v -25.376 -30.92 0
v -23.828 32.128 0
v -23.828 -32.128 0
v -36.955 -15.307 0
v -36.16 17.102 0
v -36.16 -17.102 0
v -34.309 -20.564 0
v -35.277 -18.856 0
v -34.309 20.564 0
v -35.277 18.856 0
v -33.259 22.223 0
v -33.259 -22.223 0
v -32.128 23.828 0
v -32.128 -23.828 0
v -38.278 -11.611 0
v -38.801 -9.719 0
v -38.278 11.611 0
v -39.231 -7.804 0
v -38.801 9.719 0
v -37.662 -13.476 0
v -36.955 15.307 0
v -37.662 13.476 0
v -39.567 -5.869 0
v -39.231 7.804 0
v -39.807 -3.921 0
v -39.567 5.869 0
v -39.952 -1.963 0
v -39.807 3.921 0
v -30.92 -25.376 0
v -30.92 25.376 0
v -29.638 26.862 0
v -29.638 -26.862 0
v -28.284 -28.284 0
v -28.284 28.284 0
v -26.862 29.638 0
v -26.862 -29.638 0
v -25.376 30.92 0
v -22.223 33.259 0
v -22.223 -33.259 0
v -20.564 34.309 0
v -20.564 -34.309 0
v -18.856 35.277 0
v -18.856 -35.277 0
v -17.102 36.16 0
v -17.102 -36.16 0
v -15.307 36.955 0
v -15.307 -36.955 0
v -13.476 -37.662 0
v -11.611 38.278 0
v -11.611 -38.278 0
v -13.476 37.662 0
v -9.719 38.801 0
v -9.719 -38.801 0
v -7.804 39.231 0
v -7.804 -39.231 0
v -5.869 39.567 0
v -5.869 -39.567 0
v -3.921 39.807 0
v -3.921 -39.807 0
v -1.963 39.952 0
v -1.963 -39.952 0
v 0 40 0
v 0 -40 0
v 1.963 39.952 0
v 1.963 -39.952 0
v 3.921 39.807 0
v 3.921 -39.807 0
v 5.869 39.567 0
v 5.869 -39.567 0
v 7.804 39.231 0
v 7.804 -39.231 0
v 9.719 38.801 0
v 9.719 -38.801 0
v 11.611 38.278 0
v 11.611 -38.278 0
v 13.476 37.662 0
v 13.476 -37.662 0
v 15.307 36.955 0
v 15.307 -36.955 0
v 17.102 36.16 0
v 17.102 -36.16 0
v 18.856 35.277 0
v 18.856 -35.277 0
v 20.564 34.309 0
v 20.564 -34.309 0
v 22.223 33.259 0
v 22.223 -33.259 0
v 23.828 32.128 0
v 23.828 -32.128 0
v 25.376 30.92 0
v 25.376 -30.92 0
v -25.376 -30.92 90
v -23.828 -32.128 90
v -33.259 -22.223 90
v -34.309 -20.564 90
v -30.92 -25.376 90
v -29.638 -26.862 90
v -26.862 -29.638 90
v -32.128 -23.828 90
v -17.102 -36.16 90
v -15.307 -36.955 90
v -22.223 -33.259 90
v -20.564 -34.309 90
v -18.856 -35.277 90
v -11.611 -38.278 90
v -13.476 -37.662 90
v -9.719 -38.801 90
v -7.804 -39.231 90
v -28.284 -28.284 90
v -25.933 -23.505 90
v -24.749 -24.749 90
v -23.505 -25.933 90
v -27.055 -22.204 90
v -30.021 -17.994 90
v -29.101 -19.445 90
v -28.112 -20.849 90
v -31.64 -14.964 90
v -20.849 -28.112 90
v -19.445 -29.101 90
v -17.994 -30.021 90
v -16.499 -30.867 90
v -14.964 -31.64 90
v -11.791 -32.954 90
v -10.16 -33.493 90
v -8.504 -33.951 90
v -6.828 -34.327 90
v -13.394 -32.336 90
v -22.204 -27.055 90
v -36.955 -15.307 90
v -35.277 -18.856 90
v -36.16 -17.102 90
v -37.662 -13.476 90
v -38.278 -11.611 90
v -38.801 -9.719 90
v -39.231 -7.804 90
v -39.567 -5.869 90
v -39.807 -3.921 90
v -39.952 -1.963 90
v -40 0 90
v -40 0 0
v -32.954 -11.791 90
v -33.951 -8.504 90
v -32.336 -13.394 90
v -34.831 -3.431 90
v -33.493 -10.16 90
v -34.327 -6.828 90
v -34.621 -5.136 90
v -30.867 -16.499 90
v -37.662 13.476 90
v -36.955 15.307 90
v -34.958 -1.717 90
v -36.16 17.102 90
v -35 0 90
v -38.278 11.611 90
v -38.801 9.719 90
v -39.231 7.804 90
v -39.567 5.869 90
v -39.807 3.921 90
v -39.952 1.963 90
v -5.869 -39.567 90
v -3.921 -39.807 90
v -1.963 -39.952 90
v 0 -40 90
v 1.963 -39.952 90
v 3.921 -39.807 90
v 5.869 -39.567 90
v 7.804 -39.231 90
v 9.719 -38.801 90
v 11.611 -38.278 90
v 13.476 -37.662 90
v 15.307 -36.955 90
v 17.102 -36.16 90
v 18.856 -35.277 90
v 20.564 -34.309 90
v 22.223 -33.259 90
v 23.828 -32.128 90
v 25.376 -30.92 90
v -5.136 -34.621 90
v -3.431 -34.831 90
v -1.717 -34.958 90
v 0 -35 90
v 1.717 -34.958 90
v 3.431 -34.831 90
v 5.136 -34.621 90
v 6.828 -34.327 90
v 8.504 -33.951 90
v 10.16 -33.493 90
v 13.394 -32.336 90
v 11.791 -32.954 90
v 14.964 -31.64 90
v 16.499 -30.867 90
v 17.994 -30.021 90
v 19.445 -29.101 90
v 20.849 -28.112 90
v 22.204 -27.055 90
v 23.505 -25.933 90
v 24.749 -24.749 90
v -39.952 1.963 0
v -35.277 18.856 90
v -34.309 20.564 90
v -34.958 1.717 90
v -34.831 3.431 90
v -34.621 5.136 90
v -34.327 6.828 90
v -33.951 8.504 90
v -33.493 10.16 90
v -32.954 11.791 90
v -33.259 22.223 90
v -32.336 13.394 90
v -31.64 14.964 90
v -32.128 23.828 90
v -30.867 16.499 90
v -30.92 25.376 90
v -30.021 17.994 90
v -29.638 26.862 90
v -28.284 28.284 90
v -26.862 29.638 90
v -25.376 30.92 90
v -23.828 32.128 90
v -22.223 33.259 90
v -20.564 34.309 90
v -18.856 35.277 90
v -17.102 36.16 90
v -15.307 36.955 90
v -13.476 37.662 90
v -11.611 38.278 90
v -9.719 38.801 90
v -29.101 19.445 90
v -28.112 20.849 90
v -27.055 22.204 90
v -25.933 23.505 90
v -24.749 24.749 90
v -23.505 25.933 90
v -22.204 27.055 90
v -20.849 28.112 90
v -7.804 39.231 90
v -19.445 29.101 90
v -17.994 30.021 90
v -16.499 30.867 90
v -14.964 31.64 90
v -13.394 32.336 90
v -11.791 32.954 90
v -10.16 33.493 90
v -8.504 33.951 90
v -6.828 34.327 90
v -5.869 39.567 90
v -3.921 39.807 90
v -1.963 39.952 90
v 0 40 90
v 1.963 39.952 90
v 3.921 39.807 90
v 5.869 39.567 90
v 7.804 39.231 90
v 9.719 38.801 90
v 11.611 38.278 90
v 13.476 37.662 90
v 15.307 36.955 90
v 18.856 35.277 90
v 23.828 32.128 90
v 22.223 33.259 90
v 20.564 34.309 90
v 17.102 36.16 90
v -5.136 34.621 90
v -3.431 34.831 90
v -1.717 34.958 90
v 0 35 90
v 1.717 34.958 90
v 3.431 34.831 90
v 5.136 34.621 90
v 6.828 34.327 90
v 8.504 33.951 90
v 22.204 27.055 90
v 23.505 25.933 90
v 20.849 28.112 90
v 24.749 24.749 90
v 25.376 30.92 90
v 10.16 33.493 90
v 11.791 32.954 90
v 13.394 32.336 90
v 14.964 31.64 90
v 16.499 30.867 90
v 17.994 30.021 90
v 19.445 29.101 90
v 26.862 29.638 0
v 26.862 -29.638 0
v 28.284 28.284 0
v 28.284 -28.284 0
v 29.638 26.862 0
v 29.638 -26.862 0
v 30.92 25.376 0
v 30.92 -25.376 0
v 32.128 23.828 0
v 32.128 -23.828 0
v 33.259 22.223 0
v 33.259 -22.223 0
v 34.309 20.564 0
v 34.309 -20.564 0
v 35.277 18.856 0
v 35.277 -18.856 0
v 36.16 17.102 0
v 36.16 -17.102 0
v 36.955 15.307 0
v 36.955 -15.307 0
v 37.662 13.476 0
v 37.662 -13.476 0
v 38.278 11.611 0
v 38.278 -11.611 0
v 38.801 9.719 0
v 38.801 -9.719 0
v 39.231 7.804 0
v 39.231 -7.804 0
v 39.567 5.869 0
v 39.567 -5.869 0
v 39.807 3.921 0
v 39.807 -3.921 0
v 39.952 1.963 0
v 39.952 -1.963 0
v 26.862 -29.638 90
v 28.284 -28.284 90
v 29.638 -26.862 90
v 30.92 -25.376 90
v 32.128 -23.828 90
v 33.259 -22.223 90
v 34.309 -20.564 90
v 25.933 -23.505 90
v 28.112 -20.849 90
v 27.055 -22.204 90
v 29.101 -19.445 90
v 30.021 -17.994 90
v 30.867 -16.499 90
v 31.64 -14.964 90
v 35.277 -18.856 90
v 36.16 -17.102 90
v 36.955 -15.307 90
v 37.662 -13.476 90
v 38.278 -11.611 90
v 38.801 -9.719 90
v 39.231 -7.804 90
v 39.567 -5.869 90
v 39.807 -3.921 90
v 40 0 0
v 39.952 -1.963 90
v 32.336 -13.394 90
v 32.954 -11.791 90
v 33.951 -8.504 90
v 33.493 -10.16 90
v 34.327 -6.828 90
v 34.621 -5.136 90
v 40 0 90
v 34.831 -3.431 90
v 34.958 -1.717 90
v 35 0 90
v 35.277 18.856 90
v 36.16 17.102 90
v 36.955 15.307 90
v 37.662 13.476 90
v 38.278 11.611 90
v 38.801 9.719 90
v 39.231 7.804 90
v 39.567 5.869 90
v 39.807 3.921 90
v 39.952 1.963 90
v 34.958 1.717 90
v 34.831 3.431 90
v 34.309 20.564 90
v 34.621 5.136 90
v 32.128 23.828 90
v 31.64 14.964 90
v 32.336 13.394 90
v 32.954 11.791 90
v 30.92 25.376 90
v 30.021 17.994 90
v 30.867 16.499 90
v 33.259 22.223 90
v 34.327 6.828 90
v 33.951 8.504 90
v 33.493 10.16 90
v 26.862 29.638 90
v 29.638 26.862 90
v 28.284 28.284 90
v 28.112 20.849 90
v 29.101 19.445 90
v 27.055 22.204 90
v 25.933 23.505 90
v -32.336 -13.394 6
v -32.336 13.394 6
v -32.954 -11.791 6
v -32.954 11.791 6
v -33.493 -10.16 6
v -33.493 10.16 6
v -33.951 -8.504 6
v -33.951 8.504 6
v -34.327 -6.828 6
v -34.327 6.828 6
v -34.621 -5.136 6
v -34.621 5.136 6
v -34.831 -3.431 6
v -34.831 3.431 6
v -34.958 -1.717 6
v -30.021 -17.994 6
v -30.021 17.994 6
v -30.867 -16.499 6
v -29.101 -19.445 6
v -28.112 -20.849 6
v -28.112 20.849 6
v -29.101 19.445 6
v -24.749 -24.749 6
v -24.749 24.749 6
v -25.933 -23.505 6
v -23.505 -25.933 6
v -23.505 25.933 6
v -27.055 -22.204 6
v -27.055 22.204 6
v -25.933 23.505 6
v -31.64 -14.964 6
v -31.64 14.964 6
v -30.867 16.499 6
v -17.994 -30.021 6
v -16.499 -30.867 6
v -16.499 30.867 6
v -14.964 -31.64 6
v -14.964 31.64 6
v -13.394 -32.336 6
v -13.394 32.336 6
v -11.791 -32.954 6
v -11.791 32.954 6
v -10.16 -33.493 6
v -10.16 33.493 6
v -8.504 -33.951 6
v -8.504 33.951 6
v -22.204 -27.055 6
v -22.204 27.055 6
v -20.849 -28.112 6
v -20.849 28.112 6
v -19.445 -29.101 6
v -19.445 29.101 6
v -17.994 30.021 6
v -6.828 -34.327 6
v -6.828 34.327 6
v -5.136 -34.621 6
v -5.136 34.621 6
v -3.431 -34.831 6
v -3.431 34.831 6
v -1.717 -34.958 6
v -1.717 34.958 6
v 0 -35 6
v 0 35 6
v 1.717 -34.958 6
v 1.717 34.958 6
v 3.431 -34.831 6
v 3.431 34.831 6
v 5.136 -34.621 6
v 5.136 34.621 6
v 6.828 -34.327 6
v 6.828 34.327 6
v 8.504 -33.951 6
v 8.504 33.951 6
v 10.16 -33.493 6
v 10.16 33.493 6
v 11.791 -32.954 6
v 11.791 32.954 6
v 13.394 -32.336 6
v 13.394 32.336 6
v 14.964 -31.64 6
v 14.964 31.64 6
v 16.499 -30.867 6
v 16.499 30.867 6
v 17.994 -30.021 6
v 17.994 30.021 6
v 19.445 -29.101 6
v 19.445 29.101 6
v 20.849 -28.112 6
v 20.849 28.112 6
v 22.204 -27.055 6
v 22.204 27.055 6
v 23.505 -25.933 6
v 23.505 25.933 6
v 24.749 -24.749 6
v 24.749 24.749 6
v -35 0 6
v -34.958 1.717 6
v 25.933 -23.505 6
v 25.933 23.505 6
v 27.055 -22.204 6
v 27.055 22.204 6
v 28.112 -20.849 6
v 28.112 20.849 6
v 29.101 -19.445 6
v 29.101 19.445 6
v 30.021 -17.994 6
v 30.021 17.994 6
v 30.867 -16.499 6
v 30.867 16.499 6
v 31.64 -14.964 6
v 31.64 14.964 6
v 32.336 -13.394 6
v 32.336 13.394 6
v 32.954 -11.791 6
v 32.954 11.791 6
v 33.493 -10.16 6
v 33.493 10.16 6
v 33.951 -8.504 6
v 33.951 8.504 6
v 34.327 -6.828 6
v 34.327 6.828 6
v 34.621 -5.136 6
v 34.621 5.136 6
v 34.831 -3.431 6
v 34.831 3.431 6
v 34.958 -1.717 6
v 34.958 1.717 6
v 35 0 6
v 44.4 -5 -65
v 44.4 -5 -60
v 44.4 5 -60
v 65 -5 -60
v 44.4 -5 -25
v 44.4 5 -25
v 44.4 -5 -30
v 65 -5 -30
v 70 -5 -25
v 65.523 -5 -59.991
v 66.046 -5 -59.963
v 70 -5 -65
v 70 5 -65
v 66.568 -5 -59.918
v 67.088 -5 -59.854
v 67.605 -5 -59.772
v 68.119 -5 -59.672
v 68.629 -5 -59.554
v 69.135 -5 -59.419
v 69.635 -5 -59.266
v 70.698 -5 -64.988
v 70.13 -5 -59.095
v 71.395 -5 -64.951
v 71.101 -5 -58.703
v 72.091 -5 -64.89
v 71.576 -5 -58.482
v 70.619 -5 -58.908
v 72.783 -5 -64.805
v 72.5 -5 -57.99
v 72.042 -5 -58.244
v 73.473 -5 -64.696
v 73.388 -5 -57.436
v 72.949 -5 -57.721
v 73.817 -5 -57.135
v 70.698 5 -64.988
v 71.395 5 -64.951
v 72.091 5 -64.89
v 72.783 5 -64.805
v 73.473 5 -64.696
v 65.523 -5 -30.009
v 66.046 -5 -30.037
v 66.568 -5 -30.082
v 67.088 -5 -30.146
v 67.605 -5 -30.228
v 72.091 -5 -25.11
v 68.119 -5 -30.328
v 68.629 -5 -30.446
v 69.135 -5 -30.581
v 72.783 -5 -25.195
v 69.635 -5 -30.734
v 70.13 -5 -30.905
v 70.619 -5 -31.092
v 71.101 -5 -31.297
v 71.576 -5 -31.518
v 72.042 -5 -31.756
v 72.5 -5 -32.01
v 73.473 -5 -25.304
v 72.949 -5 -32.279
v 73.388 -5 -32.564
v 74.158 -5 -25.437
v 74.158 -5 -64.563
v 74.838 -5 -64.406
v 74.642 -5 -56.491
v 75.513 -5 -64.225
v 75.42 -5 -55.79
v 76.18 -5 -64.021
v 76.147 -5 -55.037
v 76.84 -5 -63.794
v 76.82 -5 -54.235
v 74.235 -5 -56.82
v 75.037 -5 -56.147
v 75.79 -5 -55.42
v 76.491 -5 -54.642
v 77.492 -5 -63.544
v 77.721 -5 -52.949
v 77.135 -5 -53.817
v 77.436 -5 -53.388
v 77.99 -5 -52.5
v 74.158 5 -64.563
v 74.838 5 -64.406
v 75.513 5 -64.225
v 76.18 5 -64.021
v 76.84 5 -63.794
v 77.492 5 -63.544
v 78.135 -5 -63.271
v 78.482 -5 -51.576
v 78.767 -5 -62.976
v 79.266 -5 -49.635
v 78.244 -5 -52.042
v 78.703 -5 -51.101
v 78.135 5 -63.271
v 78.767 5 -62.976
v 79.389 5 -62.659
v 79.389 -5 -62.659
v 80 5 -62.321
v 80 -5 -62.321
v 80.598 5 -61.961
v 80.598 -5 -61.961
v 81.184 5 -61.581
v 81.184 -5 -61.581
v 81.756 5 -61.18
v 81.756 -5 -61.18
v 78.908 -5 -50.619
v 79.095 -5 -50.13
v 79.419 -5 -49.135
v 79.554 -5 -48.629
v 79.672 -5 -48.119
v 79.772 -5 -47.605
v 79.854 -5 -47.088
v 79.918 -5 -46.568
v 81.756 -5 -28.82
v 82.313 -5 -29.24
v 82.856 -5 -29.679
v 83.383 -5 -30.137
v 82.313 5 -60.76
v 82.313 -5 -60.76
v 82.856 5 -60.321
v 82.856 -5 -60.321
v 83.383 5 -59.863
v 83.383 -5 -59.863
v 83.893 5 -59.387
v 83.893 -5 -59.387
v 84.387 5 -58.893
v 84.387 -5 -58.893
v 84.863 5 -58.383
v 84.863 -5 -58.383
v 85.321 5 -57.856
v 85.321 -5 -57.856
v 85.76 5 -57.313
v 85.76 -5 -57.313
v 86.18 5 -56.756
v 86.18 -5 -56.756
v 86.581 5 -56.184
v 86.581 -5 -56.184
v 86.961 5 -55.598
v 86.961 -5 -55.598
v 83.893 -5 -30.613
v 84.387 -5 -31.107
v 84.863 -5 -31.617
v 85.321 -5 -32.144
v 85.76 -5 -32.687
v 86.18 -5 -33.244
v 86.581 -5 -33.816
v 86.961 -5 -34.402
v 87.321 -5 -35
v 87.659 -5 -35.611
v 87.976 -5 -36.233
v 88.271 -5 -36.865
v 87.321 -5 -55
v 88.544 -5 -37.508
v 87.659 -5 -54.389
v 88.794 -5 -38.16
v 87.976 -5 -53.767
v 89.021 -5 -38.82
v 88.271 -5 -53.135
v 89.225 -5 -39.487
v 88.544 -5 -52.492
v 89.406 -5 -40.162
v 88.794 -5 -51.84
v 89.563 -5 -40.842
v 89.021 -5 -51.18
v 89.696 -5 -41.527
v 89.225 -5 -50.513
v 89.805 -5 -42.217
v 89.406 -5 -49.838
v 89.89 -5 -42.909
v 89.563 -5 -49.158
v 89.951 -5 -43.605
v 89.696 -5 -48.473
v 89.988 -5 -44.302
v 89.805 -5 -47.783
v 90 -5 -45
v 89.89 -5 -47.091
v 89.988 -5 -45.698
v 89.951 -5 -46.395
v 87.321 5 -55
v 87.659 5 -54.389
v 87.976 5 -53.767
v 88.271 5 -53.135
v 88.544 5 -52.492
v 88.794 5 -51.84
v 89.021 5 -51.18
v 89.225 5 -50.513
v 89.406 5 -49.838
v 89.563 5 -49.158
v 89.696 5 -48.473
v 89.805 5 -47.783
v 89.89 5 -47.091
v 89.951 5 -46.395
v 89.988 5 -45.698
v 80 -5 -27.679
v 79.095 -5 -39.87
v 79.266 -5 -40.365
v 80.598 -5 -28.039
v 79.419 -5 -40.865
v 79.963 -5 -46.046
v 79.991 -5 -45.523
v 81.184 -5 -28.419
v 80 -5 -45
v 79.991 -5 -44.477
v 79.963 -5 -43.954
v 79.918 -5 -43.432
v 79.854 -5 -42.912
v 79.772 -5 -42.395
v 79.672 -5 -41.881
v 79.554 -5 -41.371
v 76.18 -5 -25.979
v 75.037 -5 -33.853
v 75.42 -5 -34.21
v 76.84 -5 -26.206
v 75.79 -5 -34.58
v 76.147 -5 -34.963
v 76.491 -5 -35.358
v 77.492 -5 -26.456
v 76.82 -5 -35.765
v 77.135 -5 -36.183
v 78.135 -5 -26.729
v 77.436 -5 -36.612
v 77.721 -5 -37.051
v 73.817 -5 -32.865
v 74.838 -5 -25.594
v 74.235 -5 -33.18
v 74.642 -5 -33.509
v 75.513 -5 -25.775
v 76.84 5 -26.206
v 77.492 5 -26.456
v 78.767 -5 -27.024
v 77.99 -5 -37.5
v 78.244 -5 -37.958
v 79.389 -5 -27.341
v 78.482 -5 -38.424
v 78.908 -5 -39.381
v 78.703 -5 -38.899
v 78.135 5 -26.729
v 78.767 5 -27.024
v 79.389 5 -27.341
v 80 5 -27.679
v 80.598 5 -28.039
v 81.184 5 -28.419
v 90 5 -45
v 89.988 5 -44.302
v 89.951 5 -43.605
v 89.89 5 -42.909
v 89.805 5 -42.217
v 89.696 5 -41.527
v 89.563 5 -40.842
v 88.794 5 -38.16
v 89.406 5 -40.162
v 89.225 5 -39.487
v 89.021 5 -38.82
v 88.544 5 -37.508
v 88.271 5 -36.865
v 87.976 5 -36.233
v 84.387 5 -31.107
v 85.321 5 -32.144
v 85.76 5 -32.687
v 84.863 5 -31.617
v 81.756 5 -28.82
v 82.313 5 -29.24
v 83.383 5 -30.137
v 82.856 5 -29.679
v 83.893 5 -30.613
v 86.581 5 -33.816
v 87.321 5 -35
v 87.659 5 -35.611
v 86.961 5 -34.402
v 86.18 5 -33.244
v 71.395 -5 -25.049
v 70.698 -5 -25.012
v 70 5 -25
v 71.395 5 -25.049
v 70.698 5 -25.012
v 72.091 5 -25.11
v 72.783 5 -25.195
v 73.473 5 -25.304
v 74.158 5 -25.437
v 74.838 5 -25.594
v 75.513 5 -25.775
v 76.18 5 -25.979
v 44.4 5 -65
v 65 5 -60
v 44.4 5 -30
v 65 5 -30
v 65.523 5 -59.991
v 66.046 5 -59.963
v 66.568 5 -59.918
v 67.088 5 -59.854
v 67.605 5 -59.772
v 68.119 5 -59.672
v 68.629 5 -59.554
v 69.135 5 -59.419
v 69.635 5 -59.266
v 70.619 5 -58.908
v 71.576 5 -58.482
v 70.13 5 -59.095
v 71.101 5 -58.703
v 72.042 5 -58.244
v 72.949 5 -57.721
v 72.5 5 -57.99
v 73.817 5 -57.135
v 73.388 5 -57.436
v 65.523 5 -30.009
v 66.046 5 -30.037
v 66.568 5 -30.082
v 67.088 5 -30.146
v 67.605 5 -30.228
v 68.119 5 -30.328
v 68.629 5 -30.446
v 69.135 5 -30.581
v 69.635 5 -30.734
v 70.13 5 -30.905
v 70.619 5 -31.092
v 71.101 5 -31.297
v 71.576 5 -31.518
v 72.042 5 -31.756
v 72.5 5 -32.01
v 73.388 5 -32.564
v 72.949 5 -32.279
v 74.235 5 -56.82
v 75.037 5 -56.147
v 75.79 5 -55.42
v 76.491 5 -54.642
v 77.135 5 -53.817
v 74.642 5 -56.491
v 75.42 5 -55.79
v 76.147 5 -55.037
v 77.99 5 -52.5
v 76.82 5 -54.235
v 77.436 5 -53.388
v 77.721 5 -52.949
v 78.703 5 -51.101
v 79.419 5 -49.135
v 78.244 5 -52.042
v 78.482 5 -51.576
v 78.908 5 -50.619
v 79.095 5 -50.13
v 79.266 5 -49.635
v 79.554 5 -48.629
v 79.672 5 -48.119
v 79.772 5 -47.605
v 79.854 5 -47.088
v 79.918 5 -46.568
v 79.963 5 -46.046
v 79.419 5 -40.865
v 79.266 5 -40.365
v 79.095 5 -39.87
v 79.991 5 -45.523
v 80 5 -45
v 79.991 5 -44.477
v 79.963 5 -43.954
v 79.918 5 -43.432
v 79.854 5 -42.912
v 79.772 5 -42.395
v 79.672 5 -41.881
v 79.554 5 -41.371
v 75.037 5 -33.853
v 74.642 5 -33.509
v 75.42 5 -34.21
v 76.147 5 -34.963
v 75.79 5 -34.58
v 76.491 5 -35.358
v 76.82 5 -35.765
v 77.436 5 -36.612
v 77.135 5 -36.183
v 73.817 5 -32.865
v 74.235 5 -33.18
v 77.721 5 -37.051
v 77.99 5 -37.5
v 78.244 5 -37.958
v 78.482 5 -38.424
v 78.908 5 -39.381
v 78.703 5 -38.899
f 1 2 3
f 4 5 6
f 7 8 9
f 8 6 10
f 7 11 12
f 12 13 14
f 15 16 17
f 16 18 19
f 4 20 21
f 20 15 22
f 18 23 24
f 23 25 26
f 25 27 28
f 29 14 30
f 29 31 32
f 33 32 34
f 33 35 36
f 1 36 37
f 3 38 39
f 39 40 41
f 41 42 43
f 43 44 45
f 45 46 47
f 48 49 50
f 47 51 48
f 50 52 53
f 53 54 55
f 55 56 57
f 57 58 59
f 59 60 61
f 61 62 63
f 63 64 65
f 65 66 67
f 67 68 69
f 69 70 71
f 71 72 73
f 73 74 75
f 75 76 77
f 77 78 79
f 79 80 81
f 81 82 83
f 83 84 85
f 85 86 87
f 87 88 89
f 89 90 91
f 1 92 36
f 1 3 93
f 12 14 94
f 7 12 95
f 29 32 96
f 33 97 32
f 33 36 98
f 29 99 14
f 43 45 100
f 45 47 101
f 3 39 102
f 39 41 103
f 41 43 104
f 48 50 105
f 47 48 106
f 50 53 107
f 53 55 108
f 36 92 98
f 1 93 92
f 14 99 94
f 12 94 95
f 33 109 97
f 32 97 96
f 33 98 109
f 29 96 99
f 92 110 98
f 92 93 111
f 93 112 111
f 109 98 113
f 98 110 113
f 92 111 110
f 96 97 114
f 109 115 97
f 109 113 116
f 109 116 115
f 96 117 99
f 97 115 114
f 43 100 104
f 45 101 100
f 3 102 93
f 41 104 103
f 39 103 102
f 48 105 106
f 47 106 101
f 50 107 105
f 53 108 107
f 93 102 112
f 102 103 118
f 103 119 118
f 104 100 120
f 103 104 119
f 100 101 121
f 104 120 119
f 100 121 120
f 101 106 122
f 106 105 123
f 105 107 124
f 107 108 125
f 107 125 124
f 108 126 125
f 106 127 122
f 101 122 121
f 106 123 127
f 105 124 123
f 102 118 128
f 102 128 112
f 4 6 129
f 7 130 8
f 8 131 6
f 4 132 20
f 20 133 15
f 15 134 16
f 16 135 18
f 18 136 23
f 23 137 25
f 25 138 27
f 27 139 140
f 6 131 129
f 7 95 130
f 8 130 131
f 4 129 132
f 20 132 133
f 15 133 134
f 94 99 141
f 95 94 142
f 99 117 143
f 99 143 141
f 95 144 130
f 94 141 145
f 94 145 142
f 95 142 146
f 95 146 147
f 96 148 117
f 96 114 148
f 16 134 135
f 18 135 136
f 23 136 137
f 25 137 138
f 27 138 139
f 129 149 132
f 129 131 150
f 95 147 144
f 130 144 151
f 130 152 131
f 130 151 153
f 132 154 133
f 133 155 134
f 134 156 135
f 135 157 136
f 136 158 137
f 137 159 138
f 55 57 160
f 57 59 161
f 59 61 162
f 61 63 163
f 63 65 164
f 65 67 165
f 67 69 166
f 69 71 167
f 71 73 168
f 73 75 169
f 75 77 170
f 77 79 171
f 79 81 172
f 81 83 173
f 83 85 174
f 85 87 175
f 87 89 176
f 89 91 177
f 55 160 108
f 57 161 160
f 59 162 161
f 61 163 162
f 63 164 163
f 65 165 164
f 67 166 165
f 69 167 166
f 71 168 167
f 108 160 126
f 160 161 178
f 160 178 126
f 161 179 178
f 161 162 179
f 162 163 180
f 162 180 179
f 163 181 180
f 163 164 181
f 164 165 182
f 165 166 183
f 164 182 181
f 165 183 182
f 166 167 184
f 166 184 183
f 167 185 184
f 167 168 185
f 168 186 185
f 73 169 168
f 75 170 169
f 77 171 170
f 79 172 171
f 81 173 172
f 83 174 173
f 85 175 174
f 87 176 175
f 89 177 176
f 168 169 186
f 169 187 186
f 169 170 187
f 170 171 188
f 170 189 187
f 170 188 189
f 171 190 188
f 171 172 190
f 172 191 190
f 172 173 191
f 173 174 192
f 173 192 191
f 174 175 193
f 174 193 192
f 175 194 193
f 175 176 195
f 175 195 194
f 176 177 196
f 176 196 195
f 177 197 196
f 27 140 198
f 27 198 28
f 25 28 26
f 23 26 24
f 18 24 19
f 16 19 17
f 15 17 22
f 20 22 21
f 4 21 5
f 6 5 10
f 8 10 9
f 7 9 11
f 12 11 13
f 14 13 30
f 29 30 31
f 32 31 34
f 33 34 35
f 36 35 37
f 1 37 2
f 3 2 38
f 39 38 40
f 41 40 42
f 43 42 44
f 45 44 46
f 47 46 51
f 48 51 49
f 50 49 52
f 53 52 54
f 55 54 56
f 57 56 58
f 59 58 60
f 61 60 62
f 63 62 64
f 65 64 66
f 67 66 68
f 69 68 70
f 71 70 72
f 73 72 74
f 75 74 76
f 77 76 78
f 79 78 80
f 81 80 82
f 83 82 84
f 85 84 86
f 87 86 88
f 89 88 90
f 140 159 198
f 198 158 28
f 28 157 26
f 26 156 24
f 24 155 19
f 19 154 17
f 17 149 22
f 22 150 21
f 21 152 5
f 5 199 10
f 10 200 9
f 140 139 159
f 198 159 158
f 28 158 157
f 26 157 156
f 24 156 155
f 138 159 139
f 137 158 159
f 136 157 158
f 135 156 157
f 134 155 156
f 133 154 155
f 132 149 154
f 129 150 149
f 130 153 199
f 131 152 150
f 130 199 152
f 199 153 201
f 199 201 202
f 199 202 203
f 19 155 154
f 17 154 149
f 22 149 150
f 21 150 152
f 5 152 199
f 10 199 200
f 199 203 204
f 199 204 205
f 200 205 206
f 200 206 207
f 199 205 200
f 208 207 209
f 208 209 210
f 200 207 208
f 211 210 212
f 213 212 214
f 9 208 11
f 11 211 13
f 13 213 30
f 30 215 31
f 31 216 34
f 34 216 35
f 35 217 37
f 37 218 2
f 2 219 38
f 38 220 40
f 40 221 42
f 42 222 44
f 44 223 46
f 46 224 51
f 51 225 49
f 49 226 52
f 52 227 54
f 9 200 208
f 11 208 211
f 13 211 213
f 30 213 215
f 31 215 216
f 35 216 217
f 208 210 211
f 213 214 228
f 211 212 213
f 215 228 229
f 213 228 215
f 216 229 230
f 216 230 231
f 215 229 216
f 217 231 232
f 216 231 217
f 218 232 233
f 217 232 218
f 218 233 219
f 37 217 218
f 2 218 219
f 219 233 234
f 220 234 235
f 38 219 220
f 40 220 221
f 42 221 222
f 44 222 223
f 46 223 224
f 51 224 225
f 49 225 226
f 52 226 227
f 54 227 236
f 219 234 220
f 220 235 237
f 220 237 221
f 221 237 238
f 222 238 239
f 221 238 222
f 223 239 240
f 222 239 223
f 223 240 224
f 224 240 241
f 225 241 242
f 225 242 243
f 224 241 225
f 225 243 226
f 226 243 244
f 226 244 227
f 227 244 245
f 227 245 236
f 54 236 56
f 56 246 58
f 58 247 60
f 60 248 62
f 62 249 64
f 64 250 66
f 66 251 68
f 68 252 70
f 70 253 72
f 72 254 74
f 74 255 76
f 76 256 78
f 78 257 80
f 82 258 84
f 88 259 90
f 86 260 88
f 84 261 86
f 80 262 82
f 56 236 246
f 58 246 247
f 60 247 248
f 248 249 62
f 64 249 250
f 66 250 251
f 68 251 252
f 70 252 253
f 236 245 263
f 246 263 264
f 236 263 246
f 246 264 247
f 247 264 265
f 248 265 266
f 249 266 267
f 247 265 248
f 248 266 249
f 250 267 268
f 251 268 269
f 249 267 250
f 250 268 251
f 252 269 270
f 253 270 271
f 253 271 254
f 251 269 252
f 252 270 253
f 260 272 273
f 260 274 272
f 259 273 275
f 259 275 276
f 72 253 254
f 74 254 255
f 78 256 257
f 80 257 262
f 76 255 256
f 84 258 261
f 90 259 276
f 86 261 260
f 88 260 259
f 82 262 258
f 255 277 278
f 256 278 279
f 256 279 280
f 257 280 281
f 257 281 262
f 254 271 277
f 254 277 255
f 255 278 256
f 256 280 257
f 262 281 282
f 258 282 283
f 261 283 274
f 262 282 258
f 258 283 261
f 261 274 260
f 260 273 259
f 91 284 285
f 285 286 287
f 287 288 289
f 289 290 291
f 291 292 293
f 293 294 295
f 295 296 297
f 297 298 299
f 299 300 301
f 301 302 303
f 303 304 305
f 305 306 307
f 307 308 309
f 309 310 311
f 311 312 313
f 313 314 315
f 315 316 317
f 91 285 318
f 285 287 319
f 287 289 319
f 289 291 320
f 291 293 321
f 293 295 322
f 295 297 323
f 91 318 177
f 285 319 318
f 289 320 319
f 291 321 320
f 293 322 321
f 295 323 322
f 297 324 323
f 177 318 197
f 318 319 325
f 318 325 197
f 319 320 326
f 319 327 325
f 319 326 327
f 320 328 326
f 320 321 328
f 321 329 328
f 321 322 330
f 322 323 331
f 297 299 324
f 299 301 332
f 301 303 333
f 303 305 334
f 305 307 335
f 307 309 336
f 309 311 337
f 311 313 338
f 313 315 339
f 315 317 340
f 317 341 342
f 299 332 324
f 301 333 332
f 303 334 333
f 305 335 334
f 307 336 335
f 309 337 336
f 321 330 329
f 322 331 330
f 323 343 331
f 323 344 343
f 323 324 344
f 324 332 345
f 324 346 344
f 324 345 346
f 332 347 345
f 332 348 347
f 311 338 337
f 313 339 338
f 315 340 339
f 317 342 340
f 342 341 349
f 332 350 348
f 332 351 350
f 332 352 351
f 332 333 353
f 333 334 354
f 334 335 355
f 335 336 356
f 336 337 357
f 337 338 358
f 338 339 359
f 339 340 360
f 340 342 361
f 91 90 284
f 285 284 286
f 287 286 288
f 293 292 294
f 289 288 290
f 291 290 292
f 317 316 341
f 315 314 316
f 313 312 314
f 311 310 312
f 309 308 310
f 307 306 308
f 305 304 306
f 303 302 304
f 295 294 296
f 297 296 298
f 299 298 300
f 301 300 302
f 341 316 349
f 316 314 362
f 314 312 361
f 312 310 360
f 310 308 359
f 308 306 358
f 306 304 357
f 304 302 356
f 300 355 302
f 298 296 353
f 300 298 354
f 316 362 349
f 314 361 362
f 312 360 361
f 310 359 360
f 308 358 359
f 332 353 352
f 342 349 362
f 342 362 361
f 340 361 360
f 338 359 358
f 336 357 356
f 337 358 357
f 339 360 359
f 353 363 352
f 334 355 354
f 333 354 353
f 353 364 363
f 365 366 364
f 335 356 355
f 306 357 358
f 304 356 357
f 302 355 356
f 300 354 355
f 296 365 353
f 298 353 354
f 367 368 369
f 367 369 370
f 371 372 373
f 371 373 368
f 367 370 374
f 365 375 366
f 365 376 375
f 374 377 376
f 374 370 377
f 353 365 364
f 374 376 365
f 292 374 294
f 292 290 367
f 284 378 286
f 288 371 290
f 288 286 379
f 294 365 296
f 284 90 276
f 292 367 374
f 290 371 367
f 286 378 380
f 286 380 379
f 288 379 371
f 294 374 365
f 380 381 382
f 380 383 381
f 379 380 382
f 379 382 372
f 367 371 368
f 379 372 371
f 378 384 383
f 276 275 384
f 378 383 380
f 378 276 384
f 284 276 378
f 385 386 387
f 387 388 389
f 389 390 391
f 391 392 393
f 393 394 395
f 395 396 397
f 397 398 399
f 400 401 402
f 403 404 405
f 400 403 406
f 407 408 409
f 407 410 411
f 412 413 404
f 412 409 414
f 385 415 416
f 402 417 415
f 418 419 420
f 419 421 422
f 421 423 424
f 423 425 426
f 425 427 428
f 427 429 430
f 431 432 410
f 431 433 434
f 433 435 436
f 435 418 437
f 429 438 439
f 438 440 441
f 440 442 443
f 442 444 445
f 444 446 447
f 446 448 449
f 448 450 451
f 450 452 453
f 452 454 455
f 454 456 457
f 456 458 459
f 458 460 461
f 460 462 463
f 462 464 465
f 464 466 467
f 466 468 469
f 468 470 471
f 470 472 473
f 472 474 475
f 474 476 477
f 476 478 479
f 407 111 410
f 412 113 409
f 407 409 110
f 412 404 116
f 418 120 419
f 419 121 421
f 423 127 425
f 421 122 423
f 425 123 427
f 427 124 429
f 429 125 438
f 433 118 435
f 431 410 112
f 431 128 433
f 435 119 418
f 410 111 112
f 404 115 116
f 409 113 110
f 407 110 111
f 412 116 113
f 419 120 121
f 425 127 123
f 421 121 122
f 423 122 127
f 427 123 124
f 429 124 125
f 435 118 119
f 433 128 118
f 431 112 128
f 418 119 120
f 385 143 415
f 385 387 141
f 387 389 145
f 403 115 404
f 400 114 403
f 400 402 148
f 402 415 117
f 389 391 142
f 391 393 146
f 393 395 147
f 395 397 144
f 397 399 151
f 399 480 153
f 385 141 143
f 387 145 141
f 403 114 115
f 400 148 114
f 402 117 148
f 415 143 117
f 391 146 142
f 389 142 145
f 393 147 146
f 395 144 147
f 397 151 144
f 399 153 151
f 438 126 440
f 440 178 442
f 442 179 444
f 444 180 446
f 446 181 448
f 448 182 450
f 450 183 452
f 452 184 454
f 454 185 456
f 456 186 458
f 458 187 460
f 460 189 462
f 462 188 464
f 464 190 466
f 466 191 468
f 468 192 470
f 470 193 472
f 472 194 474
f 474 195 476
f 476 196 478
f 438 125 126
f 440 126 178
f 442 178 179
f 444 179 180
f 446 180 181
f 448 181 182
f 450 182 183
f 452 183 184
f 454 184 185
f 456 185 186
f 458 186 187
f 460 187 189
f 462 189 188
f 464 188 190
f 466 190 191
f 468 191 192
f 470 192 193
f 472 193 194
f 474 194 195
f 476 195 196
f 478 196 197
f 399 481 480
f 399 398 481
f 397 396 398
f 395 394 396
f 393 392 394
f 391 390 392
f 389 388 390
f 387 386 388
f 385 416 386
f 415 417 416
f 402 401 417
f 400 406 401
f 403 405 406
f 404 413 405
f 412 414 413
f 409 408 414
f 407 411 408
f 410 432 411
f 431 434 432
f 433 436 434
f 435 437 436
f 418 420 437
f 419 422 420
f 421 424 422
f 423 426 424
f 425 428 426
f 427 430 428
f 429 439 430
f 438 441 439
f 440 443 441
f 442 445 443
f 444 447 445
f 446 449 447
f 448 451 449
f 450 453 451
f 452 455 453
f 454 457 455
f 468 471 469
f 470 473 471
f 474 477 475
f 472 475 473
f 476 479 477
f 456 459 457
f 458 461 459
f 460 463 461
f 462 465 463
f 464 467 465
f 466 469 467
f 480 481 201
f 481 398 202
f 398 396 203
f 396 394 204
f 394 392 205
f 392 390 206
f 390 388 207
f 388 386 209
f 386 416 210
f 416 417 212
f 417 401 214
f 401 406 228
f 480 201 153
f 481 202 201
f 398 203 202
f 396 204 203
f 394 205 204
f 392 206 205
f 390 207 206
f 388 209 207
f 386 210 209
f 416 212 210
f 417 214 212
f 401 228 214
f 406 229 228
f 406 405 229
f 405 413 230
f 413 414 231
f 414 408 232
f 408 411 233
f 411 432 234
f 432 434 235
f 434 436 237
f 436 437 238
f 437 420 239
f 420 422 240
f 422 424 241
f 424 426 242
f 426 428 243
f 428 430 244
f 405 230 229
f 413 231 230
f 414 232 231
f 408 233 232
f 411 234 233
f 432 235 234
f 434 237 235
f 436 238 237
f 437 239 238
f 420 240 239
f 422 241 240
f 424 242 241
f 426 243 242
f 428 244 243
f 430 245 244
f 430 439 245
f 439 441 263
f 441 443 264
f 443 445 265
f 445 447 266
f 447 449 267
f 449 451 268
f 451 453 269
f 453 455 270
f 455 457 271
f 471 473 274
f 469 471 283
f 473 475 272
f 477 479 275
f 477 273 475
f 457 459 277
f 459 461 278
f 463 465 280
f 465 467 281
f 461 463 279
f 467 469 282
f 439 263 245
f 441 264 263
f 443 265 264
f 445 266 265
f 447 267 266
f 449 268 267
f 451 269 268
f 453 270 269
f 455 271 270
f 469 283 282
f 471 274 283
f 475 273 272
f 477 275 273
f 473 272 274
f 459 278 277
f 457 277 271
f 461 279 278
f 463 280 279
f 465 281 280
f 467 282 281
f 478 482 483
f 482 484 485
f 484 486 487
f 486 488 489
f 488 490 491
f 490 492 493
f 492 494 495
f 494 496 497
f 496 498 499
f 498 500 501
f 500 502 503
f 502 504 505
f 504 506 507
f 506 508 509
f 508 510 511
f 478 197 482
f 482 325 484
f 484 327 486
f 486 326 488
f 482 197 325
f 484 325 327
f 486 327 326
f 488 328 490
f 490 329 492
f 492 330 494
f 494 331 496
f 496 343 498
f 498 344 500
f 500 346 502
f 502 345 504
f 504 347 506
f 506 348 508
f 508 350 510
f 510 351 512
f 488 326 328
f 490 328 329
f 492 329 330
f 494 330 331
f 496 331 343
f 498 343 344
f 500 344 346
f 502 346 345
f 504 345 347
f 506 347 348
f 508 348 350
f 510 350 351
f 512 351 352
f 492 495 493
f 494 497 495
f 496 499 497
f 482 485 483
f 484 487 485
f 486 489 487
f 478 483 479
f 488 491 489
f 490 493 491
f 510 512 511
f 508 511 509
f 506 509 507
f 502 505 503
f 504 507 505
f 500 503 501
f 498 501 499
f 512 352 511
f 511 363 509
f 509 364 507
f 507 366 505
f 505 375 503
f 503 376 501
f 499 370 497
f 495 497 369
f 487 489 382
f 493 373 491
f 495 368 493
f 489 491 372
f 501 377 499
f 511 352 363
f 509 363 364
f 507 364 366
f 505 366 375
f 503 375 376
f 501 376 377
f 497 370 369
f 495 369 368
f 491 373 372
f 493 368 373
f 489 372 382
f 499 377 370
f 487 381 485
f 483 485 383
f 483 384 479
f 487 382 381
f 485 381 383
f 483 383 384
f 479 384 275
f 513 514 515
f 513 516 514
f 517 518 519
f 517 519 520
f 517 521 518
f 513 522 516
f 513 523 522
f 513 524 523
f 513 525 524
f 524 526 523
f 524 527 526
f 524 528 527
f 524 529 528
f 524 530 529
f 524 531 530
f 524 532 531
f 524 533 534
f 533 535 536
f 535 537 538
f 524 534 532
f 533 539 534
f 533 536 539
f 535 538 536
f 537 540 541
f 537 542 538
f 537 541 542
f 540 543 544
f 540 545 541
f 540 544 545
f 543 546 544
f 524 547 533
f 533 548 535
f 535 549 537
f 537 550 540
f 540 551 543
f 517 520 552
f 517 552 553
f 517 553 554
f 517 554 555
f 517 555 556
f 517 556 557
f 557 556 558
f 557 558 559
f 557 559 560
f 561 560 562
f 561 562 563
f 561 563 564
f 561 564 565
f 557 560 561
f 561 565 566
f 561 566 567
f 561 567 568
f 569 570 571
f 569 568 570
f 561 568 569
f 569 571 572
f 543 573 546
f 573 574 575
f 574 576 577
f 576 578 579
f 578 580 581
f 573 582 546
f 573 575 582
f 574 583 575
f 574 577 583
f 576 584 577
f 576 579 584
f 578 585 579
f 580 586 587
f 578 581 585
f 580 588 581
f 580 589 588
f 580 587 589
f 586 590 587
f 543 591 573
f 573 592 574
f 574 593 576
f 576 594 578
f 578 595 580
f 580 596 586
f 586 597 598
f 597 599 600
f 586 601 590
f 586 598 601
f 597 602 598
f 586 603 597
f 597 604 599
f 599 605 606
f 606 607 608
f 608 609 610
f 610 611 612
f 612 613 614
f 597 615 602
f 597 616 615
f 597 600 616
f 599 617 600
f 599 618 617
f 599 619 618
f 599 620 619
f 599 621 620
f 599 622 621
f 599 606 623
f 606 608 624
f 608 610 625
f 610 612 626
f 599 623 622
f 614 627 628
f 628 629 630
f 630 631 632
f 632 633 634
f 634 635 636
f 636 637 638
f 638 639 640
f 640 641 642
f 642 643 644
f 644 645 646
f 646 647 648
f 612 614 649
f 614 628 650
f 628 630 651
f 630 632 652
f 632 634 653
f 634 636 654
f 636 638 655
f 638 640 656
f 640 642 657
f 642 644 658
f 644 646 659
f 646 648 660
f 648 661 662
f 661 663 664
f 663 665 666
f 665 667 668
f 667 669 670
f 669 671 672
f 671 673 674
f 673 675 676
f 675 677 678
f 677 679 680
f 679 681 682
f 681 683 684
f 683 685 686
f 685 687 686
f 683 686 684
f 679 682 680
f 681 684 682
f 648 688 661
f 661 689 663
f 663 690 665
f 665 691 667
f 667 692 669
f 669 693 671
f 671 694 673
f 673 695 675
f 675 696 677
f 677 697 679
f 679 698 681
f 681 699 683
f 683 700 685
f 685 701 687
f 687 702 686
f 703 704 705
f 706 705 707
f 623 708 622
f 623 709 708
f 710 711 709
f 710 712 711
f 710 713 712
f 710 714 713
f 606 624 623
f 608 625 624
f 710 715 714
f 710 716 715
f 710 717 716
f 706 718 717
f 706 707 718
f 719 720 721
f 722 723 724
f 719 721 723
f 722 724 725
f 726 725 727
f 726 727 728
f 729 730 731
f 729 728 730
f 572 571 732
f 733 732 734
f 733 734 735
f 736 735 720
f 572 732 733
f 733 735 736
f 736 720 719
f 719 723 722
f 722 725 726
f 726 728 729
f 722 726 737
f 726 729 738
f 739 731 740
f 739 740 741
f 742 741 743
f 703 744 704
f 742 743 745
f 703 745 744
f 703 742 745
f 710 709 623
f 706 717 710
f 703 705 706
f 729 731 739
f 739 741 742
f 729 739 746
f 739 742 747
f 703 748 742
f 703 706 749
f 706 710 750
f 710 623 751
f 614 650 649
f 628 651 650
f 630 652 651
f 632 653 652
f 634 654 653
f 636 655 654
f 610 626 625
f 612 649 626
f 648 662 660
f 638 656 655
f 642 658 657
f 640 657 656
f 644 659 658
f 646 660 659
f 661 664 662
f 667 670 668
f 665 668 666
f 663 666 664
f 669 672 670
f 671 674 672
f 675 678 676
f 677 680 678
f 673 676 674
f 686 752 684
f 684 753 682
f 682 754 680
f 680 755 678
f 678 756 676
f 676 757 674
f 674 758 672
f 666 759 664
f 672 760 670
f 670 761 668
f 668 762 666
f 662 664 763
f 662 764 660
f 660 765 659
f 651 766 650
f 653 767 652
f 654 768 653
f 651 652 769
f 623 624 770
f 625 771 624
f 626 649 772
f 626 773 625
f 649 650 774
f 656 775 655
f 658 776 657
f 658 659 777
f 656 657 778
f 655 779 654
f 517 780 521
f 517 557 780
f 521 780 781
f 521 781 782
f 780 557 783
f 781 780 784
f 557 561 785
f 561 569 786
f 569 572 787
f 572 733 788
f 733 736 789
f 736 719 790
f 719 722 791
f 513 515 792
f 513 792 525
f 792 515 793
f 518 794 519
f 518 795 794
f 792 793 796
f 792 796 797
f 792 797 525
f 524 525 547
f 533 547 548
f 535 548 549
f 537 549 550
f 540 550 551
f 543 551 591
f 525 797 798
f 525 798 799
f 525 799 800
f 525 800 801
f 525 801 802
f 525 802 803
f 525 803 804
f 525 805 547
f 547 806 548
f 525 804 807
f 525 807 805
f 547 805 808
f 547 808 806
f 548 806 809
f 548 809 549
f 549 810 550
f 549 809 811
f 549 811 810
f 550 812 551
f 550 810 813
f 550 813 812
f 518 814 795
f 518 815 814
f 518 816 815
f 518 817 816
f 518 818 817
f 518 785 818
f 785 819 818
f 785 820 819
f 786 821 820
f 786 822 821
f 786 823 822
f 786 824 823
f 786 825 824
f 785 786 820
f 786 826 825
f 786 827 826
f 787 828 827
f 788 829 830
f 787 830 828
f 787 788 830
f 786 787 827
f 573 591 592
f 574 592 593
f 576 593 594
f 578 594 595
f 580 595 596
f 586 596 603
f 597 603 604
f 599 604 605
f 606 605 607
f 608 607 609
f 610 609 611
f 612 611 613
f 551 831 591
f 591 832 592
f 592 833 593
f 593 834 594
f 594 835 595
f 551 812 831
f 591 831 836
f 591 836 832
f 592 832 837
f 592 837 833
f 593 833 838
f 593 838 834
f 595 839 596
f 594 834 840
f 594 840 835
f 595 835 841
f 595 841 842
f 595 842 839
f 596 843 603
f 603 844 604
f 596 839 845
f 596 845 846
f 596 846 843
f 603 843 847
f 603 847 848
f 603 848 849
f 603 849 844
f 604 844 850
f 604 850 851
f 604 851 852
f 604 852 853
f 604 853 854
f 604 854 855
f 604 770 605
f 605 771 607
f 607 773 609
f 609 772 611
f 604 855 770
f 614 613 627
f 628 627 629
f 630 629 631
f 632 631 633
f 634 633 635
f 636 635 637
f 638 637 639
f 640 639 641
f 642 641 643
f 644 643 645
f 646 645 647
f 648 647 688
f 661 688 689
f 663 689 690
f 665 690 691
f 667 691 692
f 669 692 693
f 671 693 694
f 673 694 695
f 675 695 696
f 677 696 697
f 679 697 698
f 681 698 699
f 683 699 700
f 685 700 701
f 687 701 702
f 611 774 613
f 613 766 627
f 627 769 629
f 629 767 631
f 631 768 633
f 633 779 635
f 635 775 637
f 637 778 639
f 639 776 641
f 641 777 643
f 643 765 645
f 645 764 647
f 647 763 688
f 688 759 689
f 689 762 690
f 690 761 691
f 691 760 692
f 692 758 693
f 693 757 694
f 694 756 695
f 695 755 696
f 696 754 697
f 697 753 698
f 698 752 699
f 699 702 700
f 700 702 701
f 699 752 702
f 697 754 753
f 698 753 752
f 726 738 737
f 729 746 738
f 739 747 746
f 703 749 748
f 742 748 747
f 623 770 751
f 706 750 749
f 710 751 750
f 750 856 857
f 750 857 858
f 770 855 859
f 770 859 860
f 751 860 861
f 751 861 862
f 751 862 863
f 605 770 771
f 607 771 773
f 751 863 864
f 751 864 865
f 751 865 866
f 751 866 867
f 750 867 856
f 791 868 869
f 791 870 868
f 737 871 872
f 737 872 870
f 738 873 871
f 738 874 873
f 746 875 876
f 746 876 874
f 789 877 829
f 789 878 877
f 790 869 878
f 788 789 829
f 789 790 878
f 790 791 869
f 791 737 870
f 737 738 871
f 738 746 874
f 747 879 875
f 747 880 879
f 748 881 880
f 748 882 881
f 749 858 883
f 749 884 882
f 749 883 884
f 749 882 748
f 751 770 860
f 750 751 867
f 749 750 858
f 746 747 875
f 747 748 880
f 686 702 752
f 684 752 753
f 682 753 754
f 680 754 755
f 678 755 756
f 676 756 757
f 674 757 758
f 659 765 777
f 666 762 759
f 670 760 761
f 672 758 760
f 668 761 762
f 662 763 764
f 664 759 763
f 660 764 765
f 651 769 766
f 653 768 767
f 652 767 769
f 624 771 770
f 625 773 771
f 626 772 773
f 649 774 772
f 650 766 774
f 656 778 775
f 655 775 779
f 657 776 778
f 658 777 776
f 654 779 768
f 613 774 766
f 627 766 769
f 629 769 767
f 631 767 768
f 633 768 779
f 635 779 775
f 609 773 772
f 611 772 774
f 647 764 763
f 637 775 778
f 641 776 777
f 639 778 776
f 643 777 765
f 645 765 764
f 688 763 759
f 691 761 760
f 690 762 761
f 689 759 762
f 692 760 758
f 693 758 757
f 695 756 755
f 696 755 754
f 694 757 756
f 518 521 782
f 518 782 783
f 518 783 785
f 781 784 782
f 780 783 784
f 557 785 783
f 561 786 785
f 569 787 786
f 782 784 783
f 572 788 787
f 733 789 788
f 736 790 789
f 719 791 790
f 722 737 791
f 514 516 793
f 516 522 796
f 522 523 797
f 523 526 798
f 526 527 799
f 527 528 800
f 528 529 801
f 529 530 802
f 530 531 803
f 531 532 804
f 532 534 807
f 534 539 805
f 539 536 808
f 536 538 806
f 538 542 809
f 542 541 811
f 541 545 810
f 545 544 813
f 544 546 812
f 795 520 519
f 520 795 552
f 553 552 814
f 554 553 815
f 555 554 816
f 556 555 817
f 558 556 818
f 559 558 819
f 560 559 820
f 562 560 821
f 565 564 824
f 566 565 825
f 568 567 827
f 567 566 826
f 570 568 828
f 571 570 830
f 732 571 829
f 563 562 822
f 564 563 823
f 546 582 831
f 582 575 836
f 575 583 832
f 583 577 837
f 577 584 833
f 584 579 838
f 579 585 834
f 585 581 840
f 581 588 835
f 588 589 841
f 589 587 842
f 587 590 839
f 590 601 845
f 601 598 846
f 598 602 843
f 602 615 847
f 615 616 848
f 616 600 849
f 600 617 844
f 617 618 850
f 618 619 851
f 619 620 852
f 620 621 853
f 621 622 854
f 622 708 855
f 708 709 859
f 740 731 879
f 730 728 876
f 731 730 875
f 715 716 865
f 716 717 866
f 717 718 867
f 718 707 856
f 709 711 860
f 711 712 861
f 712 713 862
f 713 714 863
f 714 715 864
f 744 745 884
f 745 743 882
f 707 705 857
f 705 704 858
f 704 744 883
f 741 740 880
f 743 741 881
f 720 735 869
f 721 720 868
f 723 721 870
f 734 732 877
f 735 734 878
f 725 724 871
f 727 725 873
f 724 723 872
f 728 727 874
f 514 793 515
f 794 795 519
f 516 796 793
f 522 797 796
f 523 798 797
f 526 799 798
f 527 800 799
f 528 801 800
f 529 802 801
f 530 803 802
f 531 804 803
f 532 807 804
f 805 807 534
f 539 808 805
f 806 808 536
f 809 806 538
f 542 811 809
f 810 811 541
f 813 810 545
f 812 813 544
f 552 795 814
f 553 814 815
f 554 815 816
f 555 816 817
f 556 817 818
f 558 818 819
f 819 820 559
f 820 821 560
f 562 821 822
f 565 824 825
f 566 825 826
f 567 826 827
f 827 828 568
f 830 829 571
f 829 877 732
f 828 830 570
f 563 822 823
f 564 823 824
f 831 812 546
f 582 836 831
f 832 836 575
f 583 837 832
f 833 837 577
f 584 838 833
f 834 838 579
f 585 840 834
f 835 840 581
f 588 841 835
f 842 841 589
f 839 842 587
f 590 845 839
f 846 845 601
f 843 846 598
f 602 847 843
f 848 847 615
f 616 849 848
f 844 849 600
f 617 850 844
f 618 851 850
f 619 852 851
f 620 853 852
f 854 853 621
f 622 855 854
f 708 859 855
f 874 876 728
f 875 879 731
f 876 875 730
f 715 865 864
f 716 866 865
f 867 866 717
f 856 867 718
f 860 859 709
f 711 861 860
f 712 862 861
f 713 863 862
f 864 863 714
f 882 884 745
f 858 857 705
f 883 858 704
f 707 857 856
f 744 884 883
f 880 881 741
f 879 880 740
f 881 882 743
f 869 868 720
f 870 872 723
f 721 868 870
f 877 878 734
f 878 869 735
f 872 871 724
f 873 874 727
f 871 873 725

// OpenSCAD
$fn = 128;

// ===== Mug dimensions =====
outer_d  = 80;   // mm
inner_d  = 70;   // mm
mug_h    = 90;   // mm
bottom_t = 6;    // mm

// ===== Handle inner opening requirement =====
// inner void: height 30mm (Z) x width 25mm (radial X)
void_h = 30;
void_w = 25;

// ===== Handle thickness =====
t_radial = 5;    // wall thickness in XZ profile
t_depth  = 10;   // thickness along Y (grip depth)

// Vertical center of handle
zc = mug_h / 2;

// Mug outer radius
r_outer = outer_d / 2;

// Inner D profile (opening)
ri   = void_h / 2;         // 15
x_ci = r_outer + void_w;   // inner semicircle center X
zi0  = zc - void_h/2;
zi1  = zc + void_h/2;

// Outer D profile (handle body), offset by t_radial
ro   = ri + t_radial;                 // 20
x_co = x_ci + t_radial;               // keep constant radial thickness
zo0  = zi0 - t_radial;
zo1  = zi1 + t_radial;

// Ensure manifold union with mug: overlap into mug wall by epsilon
eps = 0.6;                            // small penetration for robust union
x_flat_inner = r_outer - eps;         // inner flat of handle body
x_flat_outer = x_flat_inner + t_radial;

module d_profile(x_flat, z0, z1, x_c, r) {
    polygon(points = concat(
        [[x_flat, z0], [x_flat, z1]],
        [for (a = [90:-2:-90]) [x_c + r*cos(a), zc + r*sin(a)]]
    ));
}

module mug_body() {
    difference() {
        cylinder(h = mug_h, d = outer_d);
        translate([0,0,bottom_t])
            cylinder(h = mug_h - bottom_t + 0.01, d = inner_d);
    }
}

module handle_body() {
    translate([0, -t_depth/2, 0])
        rotate([-90,0,0])
            linear_extrude(height = t_depth)
                d_profile(x_flat_outer, zo0, zo1, x_co, ro);
}

module handle_hole() {
    translate([0, -(t_depth/2 + 0.1), 0])
        rotate([-90,0,0])
            linear_extrude(height = t_depth + 0.2)
                d_profile(r_outer, zi0, zi1, x_ci, ri); // flat side exactly at mug tangent
}

union() {
    mug_body();
    difference() {
        handle_body();
        handle_hole();
    }
}
